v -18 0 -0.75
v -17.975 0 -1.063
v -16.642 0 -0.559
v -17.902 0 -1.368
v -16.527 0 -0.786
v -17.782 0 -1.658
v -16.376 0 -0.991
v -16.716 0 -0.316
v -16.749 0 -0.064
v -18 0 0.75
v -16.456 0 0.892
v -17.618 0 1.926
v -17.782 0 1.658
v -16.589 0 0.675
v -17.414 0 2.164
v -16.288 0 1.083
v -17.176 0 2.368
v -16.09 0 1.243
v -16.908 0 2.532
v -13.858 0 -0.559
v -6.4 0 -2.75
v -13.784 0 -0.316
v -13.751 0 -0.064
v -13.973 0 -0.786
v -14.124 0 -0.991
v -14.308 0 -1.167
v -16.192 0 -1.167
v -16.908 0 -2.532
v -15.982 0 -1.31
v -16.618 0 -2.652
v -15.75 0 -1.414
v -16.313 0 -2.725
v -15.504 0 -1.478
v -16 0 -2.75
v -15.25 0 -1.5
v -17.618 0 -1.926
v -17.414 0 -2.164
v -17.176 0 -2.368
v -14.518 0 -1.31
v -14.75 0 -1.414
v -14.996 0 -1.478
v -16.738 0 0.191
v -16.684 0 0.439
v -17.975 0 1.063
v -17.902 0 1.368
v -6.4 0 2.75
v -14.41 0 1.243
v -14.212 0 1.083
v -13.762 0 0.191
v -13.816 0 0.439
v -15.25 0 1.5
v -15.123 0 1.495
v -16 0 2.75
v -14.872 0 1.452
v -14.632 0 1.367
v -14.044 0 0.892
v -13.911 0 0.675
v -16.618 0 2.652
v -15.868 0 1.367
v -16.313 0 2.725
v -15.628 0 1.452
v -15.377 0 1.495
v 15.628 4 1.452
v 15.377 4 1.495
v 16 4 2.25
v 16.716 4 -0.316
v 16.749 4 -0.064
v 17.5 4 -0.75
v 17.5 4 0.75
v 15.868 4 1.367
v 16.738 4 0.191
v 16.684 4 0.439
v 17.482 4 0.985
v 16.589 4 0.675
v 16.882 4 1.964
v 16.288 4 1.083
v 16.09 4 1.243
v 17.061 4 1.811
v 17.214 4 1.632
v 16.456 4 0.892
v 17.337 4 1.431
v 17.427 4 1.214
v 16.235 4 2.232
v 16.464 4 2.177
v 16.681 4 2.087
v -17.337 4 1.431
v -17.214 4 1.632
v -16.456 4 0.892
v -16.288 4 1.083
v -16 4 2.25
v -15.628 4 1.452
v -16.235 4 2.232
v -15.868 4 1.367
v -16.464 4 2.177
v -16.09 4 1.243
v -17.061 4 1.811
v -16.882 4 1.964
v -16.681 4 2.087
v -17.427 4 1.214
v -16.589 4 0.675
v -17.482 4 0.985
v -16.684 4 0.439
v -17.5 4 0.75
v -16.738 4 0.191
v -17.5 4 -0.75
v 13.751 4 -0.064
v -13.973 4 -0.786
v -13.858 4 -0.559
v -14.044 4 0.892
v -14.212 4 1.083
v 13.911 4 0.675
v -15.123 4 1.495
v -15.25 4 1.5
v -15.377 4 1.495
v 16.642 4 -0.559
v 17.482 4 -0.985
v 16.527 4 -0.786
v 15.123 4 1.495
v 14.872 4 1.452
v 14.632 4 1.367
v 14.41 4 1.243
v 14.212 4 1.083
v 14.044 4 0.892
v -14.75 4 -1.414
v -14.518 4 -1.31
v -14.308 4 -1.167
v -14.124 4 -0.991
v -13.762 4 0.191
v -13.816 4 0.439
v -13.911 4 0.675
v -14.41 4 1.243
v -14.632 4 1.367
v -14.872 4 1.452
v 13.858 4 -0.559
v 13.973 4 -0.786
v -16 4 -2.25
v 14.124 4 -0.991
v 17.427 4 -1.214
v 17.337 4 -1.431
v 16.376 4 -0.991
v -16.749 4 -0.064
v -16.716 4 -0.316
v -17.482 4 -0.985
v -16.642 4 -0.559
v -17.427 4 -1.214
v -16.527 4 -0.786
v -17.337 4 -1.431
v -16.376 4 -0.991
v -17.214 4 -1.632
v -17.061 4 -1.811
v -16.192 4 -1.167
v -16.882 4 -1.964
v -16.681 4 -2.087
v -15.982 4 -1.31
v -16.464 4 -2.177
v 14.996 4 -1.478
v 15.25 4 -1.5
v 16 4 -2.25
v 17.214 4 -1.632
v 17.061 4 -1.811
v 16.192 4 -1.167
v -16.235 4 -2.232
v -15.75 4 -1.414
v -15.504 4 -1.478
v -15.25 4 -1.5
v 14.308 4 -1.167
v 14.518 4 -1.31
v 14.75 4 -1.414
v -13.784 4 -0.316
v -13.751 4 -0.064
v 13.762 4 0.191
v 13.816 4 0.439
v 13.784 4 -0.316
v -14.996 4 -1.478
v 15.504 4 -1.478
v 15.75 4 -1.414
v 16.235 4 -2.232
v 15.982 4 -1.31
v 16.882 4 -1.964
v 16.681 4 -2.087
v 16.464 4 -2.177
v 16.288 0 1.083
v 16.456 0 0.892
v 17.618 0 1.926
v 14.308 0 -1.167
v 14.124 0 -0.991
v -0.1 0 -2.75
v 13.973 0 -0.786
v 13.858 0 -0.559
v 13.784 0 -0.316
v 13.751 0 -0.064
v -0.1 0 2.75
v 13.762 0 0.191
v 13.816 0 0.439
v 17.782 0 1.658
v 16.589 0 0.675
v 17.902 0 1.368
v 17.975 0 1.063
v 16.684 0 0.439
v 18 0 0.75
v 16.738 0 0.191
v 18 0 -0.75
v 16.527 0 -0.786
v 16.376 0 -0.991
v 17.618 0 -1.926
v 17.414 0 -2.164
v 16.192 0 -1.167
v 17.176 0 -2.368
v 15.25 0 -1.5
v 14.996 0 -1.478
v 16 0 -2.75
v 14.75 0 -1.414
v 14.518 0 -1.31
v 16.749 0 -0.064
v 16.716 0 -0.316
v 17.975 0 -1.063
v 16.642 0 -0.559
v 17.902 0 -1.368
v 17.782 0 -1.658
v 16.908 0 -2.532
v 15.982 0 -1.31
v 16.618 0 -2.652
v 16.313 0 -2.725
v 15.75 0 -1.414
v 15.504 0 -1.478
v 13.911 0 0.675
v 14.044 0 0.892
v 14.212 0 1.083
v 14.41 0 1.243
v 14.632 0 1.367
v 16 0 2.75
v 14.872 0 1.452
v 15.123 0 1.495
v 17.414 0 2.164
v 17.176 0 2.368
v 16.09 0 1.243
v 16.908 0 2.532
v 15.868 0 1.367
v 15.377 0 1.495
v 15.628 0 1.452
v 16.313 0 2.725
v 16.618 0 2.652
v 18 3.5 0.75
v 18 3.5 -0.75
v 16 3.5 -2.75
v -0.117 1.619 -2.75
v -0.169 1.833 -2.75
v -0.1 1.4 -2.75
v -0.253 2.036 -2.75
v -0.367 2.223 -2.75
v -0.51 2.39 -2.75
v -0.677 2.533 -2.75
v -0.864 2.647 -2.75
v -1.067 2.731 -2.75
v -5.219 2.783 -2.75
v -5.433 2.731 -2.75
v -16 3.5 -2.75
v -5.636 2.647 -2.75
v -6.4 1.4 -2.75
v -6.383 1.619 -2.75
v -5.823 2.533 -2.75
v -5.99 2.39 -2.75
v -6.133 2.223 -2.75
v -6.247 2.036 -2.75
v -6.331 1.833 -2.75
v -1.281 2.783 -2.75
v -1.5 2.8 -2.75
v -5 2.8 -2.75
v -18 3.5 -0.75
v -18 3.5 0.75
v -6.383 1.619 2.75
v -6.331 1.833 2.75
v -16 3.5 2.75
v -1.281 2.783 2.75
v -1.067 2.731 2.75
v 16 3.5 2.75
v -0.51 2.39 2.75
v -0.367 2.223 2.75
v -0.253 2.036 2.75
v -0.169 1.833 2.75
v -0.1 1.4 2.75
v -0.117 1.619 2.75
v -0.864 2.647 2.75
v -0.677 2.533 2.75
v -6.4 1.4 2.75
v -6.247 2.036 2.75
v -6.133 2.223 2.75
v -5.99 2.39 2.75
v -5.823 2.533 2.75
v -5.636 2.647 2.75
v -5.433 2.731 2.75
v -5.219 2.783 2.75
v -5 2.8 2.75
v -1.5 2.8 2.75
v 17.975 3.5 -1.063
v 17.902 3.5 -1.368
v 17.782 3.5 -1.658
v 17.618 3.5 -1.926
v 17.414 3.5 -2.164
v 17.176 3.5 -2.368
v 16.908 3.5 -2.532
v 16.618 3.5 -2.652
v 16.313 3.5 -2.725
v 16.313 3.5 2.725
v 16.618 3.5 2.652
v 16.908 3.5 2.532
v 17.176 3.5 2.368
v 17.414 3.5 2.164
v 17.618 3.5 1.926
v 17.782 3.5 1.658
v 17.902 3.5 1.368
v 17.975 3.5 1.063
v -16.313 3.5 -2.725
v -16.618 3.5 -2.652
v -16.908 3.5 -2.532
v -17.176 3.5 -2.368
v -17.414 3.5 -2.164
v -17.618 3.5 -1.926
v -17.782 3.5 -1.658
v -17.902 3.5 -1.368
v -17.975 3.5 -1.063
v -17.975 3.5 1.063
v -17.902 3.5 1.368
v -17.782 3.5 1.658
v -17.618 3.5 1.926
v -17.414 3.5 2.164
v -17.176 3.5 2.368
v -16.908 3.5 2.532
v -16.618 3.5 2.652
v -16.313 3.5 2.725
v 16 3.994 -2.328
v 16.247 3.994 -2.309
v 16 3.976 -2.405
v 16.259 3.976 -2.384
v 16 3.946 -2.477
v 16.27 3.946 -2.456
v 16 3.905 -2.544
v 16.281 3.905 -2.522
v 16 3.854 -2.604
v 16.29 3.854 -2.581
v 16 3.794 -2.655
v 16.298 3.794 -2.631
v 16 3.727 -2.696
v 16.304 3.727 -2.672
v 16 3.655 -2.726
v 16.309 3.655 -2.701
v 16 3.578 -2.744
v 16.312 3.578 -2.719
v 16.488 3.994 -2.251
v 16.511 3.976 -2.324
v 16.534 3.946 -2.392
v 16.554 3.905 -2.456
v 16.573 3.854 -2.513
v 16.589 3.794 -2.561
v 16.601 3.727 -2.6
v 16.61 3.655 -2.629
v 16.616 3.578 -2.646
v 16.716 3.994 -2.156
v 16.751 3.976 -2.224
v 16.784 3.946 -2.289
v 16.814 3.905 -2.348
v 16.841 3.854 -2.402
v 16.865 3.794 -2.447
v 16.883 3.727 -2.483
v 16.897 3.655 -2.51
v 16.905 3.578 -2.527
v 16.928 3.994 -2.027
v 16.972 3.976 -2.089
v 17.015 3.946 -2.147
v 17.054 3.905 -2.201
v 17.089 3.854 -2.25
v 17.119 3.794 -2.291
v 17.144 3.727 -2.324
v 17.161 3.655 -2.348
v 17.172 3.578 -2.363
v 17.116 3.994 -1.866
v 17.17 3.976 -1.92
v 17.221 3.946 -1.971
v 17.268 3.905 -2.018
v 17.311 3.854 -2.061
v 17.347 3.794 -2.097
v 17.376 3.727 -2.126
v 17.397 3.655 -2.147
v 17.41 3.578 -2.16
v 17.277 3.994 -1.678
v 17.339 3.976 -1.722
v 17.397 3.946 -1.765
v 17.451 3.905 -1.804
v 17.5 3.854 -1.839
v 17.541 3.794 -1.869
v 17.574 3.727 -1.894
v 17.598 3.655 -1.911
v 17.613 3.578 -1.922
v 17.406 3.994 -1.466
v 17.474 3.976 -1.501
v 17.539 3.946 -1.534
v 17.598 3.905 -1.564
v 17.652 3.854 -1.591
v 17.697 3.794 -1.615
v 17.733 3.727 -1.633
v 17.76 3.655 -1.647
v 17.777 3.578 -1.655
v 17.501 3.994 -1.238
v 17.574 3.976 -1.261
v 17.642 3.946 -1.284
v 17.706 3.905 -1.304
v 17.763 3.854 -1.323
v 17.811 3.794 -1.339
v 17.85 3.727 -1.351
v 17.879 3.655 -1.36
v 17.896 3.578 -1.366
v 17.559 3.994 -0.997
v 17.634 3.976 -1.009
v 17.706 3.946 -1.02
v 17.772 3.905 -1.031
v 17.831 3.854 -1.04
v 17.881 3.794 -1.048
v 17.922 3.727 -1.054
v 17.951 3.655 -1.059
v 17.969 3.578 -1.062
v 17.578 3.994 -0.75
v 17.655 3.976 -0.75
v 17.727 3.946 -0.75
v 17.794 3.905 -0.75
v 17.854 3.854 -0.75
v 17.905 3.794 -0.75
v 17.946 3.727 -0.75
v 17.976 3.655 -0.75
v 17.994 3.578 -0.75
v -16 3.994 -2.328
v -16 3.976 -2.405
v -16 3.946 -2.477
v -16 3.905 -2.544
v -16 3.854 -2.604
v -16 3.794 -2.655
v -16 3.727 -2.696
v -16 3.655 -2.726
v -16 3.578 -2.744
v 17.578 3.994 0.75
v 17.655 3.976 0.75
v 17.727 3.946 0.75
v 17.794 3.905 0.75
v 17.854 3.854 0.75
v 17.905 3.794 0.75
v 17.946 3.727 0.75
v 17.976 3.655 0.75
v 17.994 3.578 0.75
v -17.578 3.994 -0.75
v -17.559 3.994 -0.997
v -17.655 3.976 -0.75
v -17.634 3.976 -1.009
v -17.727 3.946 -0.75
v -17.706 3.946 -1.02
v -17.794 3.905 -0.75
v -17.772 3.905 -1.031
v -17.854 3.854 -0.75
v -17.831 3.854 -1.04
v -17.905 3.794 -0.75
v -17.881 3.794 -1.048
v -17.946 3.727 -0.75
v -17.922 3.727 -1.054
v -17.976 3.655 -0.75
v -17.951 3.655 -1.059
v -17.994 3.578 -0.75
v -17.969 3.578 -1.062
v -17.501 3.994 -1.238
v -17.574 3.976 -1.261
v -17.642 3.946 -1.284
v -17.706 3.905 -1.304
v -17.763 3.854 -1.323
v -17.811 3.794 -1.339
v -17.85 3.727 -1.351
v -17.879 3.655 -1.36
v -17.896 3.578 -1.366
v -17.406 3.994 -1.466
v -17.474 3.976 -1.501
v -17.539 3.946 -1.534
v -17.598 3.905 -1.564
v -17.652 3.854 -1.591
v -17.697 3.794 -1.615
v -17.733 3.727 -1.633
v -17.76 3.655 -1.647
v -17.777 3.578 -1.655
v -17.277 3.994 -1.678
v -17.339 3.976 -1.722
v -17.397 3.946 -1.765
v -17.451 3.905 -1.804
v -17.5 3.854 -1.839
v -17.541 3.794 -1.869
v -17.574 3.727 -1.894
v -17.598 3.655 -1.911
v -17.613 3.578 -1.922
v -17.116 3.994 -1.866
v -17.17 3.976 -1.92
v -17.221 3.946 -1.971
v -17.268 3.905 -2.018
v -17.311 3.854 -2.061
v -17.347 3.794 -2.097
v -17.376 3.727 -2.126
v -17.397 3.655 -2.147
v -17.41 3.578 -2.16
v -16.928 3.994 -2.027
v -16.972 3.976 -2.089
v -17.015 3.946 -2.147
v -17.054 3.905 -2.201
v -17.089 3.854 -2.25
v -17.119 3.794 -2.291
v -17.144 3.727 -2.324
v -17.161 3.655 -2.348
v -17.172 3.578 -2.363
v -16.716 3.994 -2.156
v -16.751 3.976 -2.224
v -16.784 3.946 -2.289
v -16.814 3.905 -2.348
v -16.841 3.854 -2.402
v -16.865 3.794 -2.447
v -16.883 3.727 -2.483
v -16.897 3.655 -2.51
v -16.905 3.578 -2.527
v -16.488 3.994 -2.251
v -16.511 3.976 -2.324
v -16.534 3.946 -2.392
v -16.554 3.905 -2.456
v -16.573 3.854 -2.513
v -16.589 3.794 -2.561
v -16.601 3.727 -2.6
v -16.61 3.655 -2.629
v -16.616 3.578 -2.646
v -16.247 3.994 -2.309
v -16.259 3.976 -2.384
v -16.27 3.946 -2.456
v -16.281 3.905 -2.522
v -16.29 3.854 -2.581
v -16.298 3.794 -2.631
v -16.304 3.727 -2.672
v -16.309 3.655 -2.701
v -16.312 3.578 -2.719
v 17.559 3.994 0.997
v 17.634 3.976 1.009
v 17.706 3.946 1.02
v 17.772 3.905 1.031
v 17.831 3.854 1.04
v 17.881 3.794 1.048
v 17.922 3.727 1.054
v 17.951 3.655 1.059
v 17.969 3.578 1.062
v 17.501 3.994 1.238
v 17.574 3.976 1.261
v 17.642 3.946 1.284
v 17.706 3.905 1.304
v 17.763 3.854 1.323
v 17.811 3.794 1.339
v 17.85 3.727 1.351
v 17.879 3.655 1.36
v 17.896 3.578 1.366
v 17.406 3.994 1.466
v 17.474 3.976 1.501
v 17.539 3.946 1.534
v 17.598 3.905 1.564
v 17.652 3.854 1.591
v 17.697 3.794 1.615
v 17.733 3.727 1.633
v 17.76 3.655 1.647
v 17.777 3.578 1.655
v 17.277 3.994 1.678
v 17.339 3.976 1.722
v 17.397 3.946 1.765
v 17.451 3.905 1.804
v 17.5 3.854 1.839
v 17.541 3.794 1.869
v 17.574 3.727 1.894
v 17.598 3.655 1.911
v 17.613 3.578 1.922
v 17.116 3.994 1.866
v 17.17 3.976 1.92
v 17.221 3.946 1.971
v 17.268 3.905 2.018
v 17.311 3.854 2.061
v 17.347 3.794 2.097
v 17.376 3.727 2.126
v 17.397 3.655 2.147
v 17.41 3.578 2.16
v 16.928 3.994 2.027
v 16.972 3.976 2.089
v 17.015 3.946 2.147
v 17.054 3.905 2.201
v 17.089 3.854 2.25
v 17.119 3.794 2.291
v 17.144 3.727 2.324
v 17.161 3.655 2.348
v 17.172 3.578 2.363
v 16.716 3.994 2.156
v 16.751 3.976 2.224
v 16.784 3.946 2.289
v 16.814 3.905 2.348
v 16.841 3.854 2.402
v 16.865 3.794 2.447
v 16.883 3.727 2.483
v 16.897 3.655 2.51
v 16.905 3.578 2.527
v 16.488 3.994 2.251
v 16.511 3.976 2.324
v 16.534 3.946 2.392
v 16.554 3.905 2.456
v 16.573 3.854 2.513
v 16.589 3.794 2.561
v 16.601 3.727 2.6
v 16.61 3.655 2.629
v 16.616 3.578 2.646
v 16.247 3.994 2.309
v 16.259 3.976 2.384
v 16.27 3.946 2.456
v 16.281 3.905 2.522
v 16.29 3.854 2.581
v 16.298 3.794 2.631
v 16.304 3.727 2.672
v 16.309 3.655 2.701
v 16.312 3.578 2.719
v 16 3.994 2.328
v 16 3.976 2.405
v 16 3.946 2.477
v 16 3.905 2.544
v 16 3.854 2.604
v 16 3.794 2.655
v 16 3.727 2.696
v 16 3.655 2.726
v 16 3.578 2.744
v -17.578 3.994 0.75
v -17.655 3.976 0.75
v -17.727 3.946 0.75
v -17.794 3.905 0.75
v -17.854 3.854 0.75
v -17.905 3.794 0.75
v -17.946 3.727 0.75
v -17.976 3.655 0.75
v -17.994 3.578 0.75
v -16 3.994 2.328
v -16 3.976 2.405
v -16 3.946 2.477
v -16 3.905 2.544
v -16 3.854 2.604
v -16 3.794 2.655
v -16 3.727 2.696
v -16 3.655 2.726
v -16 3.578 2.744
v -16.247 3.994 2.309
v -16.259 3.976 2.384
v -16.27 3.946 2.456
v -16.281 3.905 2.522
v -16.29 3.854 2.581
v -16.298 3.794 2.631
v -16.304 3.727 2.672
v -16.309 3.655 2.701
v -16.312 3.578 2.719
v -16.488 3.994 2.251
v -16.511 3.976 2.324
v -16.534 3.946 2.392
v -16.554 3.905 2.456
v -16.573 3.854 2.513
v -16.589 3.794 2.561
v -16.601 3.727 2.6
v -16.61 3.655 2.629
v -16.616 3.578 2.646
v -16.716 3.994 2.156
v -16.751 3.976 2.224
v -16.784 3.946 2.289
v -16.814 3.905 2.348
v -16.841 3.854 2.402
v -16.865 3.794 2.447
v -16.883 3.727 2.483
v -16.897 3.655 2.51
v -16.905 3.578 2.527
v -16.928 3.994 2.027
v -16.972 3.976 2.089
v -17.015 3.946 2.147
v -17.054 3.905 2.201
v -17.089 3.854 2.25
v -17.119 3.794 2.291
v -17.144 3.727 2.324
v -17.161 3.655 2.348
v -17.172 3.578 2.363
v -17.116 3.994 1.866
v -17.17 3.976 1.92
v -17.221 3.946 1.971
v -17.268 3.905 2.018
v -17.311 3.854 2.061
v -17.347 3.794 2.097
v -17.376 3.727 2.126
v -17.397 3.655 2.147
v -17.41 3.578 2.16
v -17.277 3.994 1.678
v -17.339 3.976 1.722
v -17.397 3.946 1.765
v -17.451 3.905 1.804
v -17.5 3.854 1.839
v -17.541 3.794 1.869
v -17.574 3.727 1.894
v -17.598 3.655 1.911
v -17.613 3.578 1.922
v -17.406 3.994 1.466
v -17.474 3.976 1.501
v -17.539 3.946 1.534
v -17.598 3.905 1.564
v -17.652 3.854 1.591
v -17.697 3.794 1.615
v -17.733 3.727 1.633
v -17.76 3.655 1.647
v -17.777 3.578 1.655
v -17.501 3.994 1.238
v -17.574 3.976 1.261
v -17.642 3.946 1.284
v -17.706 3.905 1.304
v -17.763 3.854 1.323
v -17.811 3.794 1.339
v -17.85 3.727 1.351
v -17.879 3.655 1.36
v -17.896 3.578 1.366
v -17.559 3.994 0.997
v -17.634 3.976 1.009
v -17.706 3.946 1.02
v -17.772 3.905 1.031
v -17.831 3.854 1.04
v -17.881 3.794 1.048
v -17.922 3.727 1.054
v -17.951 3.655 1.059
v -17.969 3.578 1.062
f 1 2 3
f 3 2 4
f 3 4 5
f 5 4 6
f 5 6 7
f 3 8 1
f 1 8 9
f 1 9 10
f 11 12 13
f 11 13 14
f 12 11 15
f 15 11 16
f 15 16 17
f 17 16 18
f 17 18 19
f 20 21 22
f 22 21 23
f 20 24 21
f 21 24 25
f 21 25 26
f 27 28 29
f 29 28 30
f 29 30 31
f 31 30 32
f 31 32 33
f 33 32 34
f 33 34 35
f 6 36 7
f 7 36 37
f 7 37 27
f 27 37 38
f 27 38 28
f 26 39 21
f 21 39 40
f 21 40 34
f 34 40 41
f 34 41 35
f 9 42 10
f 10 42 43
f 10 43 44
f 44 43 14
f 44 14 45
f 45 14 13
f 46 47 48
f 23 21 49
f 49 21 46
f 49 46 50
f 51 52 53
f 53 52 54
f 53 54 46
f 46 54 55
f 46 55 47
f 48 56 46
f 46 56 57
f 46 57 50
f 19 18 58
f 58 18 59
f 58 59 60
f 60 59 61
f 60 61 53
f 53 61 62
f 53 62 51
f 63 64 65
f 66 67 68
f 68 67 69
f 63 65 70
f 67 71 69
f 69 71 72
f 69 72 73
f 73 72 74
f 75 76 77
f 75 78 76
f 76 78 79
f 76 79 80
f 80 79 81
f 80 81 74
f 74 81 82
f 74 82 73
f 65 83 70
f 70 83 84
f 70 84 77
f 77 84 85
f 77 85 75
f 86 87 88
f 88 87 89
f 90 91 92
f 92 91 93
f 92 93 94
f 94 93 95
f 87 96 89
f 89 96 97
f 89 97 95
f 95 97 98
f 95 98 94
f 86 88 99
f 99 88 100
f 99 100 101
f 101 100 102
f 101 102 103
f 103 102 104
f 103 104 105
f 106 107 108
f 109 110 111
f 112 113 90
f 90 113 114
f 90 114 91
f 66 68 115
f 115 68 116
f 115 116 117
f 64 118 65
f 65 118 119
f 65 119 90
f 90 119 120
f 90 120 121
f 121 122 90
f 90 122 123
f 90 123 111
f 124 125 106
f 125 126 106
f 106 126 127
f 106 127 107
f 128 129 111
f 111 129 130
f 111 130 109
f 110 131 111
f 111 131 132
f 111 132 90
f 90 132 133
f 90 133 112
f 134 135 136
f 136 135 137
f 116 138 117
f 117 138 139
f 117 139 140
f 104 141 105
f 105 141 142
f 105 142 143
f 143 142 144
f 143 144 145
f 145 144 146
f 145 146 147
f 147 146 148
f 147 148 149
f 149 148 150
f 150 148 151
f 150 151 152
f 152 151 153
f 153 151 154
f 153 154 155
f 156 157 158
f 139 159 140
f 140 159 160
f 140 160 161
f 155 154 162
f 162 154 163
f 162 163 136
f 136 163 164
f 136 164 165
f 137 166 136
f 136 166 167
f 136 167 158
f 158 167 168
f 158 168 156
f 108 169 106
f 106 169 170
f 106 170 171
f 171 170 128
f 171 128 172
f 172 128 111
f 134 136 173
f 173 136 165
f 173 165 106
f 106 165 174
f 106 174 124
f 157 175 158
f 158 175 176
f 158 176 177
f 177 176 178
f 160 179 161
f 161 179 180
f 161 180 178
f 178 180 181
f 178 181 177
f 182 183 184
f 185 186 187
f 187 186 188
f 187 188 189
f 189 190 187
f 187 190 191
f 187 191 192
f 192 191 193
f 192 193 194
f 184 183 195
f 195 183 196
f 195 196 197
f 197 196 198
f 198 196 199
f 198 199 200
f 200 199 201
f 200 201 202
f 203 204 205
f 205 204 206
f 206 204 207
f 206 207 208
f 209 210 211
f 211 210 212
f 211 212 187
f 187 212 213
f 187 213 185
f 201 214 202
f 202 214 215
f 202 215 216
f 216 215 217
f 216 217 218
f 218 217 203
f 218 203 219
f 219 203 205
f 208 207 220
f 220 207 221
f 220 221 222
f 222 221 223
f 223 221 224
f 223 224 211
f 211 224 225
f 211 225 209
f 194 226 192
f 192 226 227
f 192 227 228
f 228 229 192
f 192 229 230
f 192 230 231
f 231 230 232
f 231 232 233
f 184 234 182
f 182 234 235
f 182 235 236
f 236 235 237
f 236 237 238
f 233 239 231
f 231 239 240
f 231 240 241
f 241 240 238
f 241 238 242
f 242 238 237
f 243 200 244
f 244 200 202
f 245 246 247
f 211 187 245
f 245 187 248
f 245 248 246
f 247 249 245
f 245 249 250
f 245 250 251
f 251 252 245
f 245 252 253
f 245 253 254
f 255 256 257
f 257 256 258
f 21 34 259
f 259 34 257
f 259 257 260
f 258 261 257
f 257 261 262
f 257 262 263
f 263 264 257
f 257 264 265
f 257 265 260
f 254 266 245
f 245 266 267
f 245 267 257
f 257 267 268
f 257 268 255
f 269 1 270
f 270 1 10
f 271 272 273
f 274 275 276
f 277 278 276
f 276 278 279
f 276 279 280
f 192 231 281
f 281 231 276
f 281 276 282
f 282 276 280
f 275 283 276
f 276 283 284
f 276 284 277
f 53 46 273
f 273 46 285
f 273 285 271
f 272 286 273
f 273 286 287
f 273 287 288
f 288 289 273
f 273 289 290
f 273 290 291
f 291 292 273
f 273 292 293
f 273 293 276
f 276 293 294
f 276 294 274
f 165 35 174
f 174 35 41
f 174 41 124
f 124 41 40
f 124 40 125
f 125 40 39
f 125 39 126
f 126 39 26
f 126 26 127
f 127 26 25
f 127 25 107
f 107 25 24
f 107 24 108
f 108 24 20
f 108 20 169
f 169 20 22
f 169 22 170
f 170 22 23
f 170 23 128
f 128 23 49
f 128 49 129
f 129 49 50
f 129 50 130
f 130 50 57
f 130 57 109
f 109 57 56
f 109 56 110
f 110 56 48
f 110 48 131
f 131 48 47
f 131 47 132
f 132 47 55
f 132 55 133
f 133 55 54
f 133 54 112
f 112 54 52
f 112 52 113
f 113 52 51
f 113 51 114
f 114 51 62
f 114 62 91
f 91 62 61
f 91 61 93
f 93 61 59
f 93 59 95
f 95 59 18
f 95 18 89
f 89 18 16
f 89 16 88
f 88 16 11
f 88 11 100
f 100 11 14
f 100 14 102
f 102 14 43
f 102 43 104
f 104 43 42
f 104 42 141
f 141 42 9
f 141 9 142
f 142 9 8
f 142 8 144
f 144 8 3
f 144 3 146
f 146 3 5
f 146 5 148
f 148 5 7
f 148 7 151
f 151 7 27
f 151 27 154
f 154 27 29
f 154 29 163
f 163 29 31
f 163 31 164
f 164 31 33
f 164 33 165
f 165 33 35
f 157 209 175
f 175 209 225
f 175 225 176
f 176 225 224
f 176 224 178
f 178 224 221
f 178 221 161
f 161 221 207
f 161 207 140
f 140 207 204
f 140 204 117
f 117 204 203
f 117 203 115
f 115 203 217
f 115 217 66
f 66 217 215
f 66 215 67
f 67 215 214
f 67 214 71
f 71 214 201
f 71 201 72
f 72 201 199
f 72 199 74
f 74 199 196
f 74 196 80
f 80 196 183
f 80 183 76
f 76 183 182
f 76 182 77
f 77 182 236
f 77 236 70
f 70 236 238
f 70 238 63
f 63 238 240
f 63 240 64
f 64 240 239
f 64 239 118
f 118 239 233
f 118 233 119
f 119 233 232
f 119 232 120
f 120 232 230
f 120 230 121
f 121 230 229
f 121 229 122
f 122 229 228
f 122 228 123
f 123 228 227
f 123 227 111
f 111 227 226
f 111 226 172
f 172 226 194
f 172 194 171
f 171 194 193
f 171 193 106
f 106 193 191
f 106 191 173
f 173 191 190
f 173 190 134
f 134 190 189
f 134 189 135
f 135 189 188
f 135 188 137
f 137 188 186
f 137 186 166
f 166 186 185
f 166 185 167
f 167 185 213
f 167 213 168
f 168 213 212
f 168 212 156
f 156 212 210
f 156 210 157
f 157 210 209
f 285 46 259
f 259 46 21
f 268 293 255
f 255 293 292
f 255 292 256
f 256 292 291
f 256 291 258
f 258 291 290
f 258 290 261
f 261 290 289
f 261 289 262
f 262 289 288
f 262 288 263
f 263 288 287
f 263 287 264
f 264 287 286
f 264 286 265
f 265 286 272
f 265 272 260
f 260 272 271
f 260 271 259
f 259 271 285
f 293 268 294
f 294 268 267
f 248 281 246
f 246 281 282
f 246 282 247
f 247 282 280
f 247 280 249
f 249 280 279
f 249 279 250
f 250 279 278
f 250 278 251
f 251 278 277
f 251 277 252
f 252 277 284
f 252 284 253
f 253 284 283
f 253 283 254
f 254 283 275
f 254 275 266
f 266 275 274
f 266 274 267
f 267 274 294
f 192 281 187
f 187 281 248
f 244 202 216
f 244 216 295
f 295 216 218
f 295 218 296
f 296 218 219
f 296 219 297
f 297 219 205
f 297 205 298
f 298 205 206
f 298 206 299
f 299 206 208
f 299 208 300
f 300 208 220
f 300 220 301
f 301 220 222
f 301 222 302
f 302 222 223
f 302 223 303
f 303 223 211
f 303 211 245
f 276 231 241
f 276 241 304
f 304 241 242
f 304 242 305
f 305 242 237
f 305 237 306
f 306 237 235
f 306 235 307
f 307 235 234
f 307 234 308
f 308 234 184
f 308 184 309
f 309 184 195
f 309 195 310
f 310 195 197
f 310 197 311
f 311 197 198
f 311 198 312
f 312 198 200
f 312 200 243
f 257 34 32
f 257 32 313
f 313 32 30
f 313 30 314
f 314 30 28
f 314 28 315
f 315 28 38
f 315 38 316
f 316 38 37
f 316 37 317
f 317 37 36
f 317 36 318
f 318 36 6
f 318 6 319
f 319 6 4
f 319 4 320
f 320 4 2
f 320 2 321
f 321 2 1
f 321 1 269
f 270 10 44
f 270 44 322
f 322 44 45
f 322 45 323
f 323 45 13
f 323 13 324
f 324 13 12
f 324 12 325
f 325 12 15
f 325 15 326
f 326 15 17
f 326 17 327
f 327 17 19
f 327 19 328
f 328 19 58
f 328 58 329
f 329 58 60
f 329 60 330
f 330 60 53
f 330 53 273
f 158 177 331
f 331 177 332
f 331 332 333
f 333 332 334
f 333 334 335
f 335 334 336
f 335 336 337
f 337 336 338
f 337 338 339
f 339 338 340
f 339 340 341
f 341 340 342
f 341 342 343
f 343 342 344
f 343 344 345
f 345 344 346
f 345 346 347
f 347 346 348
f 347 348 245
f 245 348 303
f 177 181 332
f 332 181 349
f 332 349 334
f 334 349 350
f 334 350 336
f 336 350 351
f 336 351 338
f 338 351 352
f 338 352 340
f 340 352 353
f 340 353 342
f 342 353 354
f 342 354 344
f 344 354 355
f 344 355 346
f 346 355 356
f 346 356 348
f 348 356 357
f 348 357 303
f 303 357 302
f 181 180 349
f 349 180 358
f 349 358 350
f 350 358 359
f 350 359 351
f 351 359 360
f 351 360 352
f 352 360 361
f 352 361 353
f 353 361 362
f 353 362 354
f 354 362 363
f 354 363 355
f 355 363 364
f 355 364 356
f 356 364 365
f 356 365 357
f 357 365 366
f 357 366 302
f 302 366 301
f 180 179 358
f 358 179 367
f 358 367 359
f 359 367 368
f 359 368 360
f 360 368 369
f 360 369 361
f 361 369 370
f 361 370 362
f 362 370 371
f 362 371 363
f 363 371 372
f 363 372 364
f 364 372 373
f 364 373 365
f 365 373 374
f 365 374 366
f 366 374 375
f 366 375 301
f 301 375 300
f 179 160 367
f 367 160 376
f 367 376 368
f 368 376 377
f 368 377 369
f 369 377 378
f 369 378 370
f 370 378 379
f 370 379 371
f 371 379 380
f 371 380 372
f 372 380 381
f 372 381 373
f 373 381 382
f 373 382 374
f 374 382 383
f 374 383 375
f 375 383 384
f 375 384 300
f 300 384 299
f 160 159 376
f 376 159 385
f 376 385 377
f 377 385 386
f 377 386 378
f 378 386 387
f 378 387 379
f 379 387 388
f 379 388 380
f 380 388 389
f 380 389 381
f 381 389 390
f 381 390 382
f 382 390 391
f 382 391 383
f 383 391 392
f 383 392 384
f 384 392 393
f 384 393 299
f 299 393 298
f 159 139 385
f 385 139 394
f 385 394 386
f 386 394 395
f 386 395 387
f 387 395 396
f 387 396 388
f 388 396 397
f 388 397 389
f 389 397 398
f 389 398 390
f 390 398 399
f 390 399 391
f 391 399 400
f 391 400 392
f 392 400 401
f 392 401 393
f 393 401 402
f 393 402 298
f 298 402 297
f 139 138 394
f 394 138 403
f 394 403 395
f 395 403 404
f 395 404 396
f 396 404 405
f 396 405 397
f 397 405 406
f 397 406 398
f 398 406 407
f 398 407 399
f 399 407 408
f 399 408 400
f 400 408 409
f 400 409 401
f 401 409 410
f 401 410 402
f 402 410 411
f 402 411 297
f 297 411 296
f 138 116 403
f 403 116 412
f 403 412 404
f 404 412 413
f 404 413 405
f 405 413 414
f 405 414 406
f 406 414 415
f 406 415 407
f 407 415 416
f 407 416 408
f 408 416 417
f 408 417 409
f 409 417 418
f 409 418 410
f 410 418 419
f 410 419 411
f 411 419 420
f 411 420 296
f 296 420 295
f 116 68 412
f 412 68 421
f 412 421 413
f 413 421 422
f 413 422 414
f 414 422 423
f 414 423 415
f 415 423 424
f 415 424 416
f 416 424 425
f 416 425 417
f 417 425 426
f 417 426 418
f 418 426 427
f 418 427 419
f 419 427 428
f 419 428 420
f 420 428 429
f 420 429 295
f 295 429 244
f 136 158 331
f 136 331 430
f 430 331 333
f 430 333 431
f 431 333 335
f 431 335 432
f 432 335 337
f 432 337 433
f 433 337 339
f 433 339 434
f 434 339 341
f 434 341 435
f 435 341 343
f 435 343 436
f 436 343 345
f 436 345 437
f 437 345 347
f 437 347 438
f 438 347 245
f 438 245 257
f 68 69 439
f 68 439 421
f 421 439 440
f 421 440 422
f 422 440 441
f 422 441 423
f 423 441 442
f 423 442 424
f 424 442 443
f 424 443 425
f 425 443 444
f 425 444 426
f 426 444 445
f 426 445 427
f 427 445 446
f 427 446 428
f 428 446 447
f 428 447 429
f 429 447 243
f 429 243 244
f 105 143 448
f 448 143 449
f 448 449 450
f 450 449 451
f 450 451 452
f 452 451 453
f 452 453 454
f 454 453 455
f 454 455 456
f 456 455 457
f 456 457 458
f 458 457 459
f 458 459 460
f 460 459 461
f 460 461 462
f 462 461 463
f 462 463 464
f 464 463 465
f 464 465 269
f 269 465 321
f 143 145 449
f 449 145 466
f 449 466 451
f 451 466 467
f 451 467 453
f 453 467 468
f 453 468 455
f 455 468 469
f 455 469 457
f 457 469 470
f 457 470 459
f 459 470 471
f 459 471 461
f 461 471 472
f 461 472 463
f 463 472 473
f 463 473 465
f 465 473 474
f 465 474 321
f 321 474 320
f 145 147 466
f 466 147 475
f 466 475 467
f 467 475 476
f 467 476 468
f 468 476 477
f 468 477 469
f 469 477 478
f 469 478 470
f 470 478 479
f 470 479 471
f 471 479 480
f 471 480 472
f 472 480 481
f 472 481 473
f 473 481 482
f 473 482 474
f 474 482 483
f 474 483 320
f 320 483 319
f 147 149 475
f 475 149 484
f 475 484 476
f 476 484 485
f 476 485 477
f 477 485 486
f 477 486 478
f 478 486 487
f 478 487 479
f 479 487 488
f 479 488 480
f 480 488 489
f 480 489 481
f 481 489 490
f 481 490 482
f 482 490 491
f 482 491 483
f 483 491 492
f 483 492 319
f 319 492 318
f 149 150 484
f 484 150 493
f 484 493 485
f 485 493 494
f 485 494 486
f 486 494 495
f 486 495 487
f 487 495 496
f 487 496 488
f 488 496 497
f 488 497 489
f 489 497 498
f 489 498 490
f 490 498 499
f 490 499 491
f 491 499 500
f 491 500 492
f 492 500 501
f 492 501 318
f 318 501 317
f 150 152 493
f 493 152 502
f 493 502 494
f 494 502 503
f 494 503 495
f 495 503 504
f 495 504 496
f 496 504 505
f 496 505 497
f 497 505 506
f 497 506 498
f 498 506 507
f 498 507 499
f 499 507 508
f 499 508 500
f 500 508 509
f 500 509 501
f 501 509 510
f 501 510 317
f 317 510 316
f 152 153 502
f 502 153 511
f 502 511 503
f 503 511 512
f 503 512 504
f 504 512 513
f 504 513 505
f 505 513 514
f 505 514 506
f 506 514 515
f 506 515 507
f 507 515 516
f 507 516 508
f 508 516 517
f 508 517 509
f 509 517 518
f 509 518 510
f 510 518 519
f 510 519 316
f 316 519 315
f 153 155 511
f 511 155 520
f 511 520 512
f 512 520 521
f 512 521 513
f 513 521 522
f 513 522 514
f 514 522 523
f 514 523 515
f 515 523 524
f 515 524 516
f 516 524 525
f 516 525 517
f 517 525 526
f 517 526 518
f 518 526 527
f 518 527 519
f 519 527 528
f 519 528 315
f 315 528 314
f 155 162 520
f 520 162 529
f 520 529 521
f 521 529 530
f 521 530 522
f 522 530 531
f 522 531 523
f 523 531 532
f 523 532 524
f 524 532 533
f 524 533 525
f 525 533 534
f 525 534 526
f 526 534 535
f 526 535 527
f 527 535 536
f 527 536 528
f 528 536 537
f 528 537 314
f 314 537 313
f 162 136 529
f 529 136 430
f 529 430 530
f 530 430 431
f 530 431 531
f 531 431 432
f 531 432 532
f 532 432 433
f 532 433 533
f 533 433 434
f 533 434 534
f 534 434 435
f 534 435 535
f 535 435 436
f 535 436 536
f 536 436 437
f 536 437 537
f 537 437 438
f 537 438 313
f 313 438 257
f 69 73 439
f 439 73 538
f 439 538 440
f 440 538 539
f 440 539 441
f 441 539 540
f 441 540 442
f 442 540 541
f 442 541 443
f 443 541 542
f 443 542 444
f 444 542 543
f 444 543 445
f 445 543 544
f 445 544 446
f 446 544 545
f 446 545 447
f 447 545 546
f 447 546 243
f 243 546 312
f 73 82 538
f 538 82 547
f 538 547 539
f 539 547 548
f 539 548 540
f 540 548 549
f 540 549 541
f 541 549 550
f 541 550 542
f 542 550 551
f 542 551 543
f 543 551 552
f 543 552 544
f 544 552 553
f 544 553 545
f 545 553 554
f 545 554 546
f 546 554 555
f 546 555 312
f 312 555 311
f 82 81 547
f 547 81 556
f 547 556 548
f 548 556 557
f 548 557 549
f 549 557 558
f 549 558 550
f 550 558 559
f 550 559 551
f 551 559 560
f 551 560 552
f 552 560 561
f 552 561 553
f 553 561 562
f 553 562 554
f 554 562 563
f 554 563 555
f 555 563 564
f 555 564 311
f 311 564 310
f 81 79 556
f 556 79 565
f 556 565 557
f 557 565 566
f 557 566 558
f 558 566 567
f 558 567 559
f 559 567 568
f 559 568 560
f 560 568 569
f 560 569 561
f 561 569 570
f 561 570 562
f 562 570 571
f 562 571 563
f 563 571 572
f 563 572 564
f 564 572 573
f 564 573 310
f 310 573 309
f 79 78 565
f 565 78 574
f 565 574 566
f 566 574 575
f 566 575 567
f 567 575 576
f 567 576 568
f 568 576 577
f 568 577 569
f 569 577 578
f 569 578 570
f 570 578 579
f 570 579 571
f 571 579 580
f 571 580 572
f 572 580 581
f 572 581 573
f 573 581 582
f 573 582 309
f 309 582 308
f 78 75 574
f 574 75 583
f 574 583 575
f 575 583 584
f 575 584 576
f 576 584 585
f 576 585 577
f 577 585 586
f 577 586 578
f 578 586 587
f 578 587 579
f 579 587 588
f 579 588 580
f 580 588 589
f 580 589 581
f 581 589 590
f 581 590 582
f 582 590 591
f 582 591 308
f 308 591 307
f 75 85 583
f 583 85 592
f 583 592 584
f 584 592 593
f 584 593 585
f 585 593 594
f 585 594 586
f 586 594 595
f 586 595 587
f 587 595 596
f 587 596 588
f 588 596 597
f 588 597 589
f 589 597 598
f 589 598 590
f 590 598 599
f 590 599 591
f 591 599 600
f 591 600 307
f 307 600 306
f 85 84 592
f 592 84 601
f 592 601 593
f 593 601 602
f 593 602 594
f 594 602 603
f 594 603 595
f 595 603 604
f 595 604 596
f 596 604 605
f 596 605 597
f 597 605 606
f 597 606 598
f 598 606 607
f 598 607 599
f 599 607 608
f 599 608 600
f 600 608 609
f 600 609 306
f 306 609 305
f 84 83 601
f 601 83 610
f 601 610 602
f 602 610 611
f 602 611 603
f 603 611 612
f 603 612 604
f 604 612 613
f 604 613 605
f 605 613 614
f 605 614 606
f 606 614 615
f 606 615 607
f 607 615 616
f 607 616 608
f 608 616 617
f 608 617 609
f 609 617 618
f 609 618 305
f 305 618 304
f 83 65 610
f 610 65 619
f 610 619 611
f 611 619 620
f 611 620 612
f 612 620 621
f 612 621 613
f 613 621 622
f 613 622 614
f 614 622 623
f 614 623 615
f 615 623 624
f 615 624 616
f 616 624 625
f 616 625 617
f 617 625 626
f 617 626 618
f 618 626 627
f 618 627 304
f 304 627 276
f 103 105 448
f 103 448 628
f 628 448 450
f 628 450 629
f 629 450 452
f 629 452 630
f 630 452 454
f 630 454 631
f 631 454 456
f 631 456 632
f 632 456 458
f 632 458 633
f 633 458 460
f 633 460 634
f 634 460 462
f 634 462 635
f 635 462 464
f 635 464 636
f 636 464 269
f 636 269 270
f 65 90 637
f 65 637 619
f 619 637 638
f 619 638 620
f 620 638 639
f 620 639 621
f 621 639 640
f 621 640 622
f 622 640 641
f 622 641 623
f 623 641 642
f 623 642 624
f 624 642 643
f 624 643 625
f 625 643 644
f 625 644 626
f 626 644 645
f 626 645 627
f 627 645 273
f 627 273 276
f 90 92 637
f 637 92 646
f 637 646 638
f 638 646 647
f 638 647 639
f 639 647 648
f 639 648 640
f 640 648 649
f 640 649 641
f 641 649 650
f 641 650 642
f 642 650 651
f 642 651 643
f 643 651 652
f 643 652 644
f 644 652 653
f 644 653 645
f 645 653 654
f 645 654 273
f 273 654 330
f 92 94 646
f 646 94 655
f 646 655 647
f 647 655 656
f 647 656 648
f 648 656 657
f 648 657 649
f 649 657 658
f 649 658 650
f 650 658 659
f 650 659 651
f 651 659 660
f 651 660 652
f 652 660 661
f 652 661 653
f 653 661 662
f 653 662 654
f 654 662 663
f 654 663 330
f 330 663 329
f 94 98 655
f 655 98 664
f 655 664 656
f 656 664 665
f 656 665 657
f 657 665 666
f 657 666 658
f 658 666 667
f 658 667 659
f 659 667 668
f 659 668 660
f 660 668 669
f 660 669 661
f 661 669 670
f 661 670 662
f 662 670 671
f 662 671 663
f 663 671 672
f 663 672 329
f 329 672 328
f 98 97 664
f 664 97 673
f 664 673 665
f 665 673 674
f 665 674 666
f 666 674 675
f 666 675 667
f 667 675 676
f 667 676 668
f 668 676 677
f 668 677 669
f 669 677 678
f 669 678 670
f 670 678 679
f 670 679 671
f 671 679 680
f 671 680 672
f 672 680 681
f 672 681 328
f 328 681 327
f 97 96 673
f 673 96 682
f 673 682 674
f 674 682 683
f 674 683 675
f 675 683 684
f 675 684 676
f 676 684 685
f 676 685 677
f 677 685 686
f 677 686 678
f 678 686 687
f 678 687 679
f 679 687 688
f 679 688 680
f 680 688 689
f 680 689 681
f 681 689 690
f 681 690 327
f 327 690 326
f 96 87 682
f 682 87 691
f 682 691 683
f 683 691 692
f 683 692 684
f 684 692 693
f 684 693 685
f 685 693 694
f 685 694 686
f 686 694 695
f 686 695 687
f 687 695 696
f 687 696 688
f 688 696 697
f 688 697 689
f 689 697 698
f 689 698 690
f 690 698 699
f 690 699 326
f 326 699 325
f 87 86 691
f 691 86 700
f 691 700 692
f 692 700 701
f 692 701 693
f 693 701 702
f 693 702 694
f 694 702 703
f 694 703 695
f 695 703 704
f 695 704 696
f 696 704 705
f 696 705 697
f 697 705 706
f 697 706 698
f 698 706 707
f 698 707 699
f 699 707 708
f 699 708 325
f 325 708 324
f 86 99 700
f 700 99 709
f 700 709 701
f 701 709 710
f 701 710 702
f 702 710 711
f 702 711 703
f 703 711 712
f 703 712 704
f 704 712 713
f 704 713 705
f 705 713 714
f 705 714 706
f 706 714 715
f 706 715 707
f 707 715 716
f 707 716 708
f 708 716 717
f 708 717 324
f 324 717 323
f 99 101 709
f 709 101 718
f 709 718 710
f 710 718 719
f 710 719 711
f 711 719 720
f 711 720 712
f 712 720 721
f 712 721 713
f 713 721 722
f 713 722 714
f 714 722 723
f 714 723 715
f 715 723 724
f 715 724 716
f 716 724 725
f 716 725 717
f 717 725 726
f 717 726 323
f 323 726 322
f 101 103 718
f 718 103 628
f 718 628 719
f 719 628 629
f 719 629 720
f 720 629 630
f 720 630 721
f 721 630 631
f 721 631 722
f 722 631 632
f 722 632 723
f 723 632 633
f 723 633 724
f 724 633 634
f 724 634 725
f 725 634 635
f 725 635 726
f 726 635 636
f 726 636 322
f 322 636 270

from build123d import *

# Parameters (mm, degrees)
SKETCH2_W           = 36
SKETCH2_H           = 5.5
SKETCH2_R           = 1.5
BOSS_EXTRUDE1_DEPTH = 4
SKETCH3_R           = 1.4
CUT_EXTRUDE1_DEPTH  = 5.5
FILLET1_R           = 2
FILLET2_R           = 0.5


with BuildPart() as part:
    # Sketch2 → Boss-Extrude1 (new body)
    with BuildSketch(Plane(origin=(0, 0, 0), x_dir=(1, 0, 0), z_dir=(0, 1, 0))):
        Rectangle(SKETCH2_W, SKETCH2_H)
        with Locations((-15.25, 0)):
            Circle(SKETCH2_R, mode=Mode.SUBTRACT)
        with Locations((15.25, 0)):
            Circle(SKETCH2_R, mode=Mode.SUBTRACT)
    extrude(amount=BOSS_EXTRUDE1_DEPTH)

    # Sketch3 → Cut-Extrude1 (cut)
    with BuildSketch(Plane.XY.offset(2.75)):
        with Locations((-5, 1.4)):
            Circle(SKETCH3_R)
        with BuildLine():
            ThreePointArc((-5.000000005, 0), (-5.989949495, 0.410050508), (-6.4, 1.4))
            Line((-6.4, 1.4), (-6.4, 0))
            Line((-6.4, 0), (-5.000000005, 0))
        make_face()
        with BuildLine():
            Line((-3.6, 0), (-3.6, 1.4))
            ThreePointArc((-3.6, 1.4), (-4.010050508, 0.410050505), (-5.000000005, 0))
            Line((-5.000000005, 0), (-3.6, 0))
        make_face()
        with BuildLine():
            Line((-1.5, 2.8), (-5, 2.8))
            ThreePointArc((-5, 2.8), (-4.010050506, 2.389949494), (-3.6, 1.4))
            Line((-3.6, 1.4), (-3.6, 0))
            Line((-3.6, 0), (-2.9, 0))
            Line((-2.9, 0), (-2.9, 1.4))
            ThreePointArc((-2.9, 1.4), (-2.489949494, 2.389949494), (-1.5, 2.8))
        make_face()
        with BuildLine():
            ThreePointArc((-1.500000004, 0), (-2.489949495, 0.410050508), (-2.9, 1.4))
            Line((-2.9, 1.4), (-2.9, 0))
            Line((-2.9, 0), (-1.500000004, 0))
        make_face()
        with Locations((-1.5, 1.4)):
            Circle(SKETCH3_R)
        with BuildLine():
            Line((-0.1, 0), (-0.1, 1.4))
            ThreePointArc((-0.1, 1.4), (-0.510050508, 0.410050505), (-1.500000004, 0))
            Line((-1.500000004, 0), (-0.1, 0))
        make_face()
    extrude(amount=-CUT_EXTRUDE1_DEPTH, mode=Mode.SUBTRACT)

    # Fillet1
    fillet1_edges = [part.edges().sort_by_distance(p)[0] for p in [
        (18, 2, 2.75),
        (-18, 2, 2.75),
        (-18, 2, -2.75),
        (18, 2, -2.75),
    ]]
    fillet(fillet1_edges, radius=FILLET1_R)

    # Fillet2
    fillet2_edges = [part.edges().sort_by_distance(p)[0] for p in [
        (0, 4, -2.75),
        (18, 4, 0),
        (-18, 4, 0),
        (0, 4, 2.75),
        (-17.414213562, 4, 2.164213562),
        (-17.414213562, 4, -2.164213562),
        (17.414213562, 4, 2.164213562),
        (17.414213562, 4, -2.164213562),
    ]]
    fillet(fillet2_edges, radius=FILLET2_R)


solid = part.part
